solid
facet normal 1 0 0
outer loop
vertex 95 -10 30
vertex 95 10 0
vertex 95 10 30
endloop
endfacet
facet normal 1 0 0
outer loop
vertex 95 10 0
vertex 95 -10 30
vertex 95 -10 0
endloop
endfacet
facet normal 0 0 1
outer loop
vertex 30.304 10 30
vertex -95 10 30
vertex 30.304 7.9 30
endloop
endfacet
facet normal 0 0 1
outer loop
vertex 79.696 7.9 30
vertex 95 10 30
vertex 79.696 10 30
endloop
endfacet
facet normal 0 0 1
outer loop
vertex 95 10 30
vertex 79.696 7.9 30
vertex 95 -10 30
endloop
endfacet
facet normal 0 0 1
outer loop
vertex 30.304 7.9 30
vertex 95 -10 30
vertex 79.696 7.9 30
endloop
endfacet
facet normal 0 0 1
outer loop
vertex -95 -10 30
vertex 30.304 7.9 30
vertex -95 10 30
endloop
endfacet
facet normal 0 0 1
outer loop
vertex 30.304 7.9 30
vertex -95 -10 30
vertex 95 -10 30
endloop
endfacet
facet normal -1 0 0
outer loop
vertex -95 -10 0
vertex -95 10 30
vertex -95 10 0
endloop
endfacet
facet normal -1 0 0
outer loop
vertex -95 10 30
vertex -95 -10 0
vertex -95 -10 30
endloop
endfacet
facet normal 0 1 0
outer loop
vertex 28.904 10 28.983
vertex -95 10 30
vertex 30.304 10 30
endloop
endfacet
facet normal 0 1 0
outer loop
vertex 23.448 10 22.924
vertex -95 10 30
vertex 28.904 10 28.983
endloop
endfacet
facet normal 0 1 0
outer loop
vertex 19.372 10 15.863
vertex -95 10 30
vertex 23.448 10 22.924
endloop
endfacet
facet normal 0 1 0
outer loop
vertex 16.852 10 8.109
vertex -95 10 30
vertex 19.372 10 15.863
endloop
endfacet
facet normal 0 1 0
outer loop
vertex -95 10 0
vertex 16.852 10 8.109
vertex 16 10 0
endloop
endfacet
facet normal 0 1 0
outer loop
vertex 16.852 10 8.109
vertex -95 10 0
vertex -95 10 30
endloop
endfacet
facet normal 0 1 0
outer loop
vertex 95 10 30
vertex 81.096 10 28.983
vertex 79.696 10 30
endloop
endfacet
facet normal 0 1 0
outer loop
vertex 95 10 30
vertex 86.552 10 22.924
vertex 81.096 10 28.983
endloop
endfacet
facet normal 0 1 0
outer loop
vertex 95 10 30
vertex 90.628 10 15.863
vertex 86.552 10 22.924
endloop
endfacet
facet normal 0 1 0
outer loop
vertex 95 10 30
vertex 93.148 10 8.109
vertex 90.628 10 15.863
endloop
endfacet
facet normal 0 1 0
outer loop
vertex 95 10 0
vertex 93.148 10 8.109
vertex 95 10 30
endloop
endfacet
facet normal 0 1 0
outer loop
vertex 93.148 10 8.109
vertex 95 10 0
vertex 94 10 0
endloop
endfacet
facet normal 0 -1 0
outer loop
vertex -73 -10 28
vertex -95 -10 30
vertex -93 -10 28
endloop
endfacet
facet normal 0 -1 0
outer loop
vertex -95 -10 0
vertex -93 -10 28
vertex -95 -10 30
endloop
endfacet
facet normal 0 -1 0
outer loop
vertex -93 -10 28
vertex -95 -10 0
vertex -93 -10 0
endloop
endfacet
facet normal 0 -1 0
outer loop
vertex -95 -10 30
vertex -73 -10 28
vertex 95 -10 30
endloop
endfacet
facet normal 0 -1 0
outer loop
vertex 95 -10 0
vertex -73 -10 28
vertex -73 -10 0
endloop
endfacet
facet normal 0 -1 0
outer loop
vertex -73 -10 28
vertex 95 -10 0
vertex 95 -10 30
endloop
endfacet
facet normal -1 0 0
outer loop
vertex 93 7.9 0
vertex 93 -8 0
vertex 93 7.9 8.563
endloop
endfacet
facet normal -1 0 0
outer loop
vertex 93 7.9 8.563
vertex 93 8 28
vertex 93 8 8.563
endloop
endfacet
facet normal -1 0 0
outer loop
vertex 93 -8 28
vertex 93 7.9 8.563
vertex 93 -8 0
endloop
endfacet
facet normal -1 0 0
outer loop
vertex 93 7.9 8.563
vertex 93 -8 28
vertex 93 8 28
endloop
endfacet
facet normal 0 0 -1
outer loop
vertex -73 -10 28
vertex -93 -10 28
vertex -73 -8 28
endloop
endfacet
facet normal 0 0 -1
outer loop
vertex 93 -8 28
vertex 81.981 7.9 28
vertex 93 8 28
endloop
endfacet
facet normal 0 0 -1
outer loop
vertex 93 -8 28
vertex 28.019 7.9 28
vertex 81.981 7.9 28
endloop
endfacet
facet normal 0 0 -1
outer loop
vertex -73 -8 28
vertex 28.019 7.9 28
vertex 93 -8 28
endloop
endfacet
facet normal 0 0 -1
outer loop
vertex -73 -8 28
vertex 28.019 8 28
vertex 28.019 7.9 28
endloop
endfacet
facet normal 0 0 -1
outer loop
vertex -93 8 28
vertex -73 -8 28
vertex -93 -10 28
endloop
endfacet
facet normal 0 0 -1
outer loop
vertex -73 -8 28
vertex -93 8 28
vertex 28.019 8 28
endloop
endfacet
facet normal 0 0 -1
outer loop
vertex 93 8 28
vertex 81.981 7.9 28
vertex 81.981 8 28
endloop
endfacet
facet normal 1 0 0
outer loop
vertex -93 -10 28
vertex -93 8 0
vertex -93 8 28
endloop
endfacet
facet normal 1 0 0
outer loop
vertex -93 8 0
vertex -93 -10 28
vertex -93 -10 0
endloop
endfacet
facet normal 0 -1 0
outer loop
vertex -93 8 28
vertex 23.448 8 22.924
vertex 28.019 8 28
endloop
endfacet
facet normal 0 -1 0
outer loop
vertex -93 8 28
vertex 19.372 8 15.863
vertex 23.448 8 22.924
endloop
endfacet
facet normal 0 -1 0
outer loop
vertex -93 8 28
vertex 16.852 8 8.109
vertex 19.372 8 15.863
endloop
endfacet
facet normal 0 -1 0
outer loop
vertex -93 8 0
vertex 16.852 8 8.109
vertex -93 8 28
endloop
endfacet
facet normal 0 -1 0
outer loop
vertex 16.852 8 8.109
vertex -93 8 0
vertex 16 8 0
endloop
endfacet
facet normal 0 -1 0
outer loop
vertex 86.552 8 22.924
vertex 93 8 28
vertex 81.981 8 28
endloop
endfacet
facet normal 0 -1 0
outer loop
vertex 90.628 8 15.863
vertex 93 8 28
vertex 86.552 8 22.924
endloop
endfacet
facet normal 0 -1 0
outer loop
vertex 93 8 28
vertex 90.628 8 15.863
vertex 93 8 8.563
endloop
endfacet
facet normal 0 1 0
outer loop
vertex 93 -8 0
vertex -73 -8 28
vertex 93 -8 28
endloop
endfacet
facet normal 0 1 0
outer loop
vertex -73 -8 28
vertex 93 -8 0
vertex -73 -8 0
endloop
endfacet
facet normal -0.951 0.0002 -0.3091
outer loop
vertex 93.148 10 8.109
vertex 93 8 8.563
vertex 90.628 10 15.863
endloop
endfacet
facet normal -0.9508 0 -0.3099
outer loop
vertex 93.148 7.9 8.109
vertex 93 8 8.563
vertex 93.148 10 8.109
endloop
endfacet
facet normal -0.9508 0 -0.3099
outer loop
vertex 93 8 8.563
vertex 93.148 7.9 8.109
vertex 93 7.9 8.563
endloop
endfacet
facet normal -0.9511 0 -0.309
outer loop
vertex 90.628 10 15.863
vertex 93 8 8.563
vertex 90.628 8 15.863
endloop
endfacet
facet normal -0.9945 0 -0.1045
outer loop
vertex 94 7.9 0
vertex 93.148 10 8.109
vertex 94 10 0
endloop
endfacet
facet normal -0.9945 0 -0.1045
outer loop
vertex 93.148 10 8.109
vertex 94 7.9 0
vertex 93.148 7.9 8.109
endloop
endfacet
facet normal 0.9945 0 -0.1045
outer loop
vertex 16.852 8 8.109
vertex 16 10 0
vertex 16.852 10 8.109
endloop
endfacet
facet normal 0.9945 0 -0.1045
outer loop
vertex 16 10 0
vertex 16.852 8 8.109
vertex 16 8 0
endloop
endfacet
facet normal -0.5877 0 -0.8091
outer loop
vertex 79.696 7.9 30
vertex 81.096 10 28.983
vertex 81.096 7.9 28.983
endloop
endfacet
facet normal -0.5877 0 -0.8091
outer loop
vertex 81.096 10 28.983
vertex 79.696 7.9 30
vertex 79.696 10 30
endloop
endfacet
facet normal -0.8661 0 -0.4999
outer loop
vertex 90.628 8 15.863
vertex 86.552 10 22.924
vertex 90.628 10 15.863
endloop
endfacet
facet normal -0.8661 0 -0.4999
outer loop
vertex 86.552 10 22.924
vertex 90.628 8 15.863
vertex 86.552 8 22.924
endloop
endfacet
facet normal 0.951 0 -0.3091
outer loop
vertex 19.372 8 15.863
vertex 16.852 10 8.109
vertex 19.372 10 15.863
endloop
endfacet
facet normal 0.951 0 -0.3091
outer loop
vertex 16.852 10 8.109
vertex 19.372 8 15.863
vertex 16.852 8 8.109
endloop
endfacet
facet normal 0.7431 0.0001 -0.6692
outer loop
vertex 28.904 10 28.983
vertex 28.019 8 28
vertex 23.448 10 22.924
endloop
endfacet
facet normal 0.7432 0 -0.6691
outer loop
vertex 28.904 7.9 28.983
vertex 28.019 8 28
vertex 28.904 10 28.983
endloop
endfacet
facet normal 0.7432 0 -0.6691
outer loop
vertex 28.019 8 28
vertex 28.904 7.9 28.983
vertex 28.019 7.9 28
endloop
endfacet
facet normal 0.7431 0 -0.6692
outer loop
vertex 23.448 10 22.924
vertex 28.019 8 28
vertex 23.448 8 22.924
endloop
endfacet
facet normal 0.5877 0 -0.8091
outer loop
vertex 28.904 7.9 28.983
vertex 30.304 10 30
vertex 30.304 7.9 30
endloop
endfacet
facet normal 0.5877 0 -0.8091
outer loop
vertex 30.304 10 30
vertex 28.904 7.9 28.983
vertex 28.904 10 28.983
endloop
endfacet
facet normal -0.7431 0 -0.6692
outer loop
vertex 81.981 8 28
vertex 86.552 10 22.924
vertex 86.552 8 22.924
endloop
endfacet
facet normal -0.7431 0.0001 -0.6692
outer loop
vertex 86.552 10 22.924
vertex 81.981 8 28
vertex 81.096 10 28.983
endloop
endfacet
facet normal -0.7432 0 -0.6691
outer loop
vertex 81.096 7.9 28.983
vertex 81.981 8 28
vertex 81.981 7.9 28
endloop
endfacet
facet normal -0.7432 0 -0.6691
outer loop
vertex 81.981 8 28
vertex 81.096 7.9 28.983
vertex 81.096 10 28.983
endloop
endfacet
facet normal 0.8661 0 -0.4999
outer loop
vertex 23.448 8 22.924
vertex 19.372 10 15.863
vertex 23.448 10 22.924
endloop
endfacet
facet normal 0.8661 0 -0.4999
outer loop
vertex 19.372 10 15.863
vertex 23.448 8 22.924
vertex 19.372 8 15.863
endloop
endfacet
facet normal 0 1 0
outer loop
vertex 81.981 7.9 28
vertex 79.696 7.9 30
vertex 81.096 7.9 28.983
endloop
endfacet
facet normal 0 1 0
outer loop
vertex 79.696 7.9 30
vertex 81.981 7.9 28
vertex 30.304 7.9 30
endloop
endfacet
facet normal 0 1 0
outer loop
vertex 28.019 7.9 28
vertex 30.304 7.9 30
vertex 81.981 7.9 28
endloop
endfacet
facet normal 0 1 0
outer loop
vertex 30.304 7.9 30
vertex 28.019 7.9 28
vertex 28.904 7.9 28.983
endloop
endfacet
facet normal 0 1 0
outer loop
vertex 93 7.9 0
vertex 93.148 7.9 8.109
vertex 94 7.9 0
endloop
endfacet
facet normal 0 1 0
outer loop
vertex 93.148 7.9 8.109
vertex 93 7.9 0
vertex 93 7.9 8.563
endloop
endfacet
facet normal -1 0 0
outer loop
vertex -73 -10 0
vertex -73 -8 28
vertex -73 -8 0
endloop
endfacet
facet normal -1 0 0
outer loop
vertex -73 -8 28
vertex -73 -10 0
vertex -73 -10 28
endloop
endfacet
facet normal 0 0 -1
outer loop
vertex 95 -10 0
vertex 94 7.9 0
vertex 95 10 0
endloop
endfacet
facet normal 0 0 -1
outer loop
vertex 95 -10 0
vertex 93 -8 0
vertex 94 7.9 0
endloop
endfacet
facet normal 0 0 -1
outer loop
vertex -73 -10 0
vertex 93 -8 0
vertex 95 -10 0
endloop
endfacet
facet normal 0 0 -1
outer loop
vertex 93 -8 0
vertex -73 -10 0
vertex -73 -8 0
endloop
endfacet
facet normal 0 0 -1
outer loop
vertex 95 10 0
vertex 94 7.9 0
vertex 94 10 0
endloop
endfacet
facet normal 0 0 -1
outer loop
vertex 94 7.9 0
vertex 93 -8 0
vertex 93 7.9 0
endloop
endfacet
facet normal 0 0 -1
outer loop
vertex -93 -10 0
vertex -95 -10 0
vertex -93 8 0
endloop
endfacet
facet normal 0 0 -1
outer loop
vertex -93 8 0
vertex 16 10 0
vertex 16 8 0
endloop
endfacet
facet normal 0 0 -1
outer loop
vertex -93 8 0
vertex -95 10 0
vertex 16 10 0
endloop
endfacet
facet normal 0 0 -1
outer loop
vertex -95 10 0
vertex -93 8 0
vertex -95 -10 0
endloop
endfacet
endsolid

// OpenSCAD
difference(){
    cube([190,20,60],center=true);
    cube([190-4,20-4,60-4],center=true);
    translate([55,20-2.1,0])
    rotate([90,0,0])
    cylinder(d=78,h=20,center=true);
    translate([-100-5+20+2,-10,0])
    cube([20,5,60-4],center=true);
    translate([0,0,-60])
    cube([190*2,20*2,60*2],center=true);
}
